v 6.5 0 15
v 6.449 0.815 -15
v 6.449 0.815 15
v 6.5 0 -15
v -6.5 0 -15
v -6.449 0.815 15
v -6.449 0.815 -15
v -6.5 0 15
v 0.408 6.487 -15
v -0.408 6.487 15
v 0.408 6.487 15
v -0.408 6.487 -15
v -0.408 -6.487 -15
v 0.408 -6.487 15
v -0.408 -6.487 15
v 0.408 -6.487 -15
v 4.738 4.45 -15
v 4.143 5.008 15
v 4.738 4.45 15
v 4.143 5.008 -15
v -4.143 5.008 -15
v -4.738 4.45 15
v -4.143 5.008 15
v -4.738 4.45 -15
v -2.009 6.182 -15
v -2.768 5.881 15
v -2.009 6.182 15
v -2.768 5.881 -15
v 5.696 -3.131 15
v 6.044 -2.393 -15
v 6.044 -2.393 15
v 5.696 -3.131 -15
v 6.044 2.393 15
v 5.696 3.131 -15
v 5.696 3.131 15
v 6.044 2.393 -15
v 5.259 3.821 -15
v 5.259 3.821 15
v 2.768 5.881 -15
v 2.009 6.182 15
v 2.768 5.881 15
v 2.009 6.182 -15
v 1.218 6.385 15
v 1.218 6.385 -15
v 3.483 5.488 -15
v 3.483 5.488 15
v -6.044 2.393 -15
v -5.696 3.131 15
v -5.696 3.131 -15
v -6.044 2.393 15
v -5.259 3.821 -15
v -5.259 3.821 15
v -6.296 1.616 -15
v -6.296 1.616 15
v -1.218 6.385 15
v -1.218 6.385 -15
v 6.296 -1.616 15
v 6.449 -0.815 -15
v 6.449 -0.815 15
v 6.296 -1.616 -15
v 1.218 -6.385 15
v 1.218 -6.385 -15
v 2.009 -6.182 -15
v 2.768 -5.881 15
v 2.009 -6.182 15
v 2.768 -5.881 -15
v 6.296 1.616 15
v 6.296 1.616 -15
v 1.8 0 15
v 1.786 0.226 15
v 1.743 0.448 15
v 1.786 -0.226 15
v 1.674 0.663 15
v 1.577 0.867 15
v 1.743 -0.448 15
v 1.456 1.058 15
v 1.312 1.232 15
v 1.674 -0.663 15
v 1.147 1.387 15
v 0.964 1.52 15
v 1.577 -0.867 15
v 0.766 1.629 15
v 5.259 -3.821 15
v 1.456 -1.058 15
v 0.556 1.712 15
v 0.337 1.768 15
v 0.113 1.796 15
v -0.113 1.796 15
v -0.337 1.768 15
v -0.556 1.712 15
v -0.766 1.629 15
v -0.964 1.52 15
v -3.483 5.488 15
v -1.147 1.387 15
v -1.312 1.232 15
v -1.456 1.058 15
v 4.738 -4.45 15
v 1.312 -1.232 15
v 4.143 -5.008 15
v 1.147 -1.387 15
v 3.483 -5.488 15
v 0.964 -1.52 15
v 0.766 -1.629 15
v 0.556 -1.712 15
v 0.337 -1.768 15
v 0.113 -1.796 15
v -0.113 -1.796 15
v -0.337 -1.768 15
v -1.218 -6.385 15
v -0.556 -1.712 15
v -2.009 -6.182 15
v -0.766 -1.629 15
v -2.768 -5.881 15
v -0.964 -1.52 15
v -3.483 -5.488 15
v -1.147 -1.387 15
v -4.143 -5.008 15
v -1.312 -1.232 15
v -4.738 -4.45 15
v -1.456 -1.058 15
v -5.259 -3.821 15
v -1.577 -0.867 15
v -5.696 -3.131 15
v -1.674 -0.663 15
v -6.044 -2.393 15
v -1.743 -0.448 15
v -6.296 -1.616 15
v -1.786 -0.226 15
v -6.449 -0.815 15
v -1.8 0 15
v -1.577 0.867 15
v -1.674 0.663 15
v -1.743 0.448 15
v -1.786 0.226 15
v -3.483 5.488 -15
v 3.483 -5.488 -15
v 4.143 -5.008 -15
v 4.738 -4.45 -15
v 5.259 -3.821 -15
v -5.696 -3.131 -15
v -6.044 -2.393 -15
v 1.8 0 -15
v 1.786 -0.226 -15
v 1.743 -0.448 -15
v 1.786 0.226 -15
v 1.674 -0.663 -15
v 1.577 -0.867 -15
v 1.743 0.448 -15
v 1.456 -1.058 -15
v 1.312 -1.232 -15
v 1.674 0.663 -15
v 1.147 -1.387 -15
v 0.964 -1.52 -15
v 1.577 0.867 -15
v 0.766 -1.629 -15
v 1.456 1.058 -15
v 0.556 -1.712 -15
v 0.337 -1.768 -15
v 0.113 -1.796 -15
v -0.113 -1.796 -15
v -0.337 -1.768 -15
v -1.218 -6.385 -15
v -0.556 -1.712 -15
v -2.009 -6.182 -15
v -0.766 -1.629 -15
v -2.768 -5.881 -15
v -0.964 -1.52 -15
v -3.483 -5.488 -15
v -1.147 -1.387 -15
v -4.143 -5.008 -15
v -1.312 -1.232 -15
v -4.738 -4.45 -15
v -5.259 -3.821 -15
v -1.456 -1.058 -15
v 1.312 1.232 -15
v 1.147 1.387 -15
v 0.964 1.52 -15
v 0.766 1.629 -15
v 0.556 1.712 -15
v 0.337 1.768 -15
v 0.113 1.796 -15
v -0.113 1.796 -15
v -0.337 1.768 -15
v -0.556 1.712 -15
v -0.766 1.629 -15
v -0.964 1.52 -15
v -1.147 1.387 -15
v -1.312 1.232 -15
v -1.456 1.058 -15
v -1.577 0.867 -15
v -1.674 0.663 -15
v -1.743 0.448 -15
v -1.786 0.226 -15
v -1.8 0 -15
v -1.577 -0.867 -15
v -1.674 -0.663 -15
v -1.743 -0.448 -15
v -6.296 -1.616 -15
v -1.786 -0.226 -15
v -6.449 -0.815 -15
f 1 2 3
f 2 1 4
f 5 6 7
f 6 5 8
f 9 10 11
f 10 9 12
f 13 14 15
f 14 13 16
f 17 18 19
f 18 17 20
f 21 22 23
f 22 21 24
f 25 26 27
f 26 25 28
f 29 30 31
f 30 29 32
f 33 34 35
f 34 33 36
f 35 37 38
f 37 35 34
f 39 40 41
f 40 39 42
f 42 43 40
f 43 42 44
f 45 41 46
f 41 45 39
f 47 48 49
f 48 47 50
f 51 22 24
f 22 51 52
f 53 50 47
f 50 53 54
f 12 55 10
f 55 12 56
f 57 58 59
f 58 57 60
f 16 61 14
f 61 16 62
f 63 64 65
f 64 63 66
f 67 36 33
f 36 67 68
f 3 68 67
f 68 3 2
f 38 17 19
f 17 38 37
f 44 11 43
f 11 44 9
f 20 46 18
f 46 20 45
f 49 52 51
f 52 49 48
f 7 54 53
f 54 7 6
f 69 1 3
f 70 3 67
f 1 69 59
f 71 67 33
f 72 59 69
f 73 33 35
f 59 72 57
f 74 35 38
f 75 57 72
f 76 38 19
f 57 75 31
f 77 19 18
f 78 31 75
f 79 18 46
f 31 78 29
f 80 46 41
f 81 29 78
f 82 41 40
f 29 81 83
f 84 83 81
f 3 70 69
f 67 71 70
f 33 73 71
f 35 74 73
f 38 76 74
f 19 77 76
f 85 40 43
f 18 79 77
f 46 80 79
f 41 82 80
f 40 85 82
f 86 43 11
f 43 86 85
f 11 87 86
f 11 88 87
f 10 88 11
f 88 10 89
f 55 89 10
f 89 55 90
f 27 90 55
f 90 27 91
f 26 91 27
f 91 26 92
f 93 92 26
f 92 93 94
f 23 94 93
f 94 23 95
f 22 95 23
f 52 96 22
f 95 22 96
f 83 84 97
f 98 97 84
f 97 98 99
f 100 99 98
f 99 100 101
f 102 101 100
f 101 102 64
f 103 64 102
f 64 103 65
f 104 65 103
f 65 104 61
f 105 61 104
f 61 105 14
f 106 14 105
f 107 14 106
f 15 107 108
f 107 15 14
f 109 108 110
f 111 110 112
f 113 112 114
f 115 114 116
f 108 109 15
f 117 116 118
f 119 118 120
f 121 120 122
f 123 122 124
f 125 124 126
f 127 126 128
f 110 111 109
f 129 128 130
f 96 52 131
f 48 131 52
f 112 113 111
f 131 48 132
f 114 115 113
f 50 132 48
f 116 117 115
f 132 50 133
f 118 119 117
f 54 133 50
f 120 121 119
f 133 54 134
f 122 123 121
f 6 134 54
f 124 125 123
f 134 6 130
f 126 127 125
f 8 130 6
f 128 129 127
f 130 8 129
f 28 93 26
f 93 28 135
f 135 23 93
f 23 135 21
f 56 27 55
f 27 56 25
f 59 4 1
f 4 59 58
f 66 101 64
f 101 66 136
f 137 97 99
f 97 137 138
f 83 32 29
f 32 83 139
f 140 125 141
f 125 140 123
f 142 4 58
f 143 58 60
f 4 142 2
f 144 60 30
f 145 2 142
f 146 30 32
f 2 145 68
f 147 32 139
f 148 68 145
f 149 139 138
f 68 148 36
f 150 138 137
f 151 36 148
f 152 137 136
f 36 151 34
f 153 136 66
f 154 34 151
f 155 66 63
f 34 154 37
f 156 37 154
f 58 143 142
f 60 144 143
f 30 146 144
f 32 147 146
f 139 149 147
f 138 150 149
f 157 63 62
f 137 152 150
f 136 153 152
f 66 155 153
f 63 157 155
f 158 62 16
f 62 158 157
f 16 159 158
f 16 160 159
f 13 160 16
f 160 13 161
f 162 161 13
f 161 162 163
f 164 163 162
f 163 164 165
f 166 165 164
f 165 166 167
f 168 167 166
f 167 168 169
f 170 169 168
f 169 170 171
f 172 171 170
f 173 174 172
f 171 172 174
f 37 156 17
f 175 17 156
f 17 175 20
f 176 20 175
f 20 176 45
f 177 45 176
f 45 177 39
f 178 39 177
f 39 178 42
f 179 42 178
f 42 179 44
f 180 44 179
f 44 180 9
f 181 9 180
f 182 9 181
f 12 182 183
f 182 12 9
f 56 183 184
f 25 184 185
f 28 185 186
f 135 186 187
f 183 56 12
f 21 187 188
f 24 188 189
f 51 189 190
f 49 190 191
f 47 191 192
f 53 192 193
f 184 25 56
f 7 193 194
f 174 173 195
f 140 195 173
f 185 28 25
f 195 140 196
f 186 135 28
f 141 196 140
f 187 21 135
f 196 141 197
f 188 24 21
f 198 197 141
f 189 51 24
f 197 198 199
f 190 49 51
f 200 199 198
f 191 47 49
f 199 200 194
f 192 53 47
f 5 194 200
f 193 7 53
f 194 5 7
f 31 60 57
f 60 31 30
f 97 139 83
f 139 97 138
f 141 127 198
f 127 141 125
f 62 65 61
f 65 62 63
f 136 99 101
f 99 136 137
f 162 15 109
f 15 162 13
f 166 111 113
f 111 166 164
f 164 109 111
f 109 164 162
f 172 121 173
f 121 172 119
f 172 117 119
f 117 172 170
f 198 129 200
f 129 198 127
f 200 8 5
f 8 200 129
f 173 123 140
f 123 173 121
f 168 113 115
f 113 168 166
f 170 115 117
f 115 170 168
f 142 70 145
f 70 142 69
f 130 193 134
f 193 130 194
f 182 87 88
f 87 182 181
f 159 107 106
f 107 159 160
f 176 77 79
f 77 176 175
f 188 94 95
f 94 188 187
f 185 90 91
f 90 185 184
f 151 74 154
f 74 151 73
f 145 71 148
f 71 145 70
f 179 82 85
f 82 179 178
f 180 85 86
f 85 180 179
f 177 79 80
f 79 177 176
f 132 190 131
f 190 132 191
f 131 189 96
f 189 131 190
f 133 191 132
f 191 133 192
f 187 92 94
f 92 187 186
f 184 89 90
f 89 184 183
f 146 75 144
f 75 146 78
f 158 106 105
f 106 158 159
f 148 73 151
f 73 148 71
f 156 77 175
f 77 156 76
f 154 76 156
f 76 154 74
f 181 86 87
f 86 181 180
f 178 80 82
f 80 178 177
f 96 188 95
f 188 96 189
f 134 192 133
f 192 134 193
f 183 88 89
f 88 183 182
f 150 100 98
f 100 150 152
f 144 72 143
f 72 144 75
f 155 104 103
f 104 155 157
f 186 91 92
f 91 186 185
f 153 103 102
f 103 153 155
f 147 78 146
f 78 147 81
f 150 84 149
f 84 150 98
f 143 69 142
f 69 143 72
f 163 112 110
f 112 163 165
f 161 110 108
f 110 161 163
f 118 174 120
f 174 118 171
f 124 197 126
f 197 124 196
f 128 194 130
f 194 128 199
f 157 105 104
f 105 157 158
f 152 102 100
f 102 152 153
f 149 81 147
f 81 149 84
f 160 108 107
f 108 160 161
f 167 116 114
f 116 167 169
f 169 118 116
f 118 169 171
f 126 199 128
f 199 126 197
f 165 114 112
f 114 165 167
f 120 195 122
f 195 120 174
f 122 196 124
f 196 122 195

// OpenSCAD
$fn = 50;


difference() {
	union() {
		translate(v = [0, 0, -15.0000000000]) {
			cylinder(h = 30, r = 6.5000000000);
		}
	}
	union() {
		translate(v = [0, 0, -100.0000000000]) {
			cylinder(h = 200, r = 1.8000000000);
		}
	}
}
